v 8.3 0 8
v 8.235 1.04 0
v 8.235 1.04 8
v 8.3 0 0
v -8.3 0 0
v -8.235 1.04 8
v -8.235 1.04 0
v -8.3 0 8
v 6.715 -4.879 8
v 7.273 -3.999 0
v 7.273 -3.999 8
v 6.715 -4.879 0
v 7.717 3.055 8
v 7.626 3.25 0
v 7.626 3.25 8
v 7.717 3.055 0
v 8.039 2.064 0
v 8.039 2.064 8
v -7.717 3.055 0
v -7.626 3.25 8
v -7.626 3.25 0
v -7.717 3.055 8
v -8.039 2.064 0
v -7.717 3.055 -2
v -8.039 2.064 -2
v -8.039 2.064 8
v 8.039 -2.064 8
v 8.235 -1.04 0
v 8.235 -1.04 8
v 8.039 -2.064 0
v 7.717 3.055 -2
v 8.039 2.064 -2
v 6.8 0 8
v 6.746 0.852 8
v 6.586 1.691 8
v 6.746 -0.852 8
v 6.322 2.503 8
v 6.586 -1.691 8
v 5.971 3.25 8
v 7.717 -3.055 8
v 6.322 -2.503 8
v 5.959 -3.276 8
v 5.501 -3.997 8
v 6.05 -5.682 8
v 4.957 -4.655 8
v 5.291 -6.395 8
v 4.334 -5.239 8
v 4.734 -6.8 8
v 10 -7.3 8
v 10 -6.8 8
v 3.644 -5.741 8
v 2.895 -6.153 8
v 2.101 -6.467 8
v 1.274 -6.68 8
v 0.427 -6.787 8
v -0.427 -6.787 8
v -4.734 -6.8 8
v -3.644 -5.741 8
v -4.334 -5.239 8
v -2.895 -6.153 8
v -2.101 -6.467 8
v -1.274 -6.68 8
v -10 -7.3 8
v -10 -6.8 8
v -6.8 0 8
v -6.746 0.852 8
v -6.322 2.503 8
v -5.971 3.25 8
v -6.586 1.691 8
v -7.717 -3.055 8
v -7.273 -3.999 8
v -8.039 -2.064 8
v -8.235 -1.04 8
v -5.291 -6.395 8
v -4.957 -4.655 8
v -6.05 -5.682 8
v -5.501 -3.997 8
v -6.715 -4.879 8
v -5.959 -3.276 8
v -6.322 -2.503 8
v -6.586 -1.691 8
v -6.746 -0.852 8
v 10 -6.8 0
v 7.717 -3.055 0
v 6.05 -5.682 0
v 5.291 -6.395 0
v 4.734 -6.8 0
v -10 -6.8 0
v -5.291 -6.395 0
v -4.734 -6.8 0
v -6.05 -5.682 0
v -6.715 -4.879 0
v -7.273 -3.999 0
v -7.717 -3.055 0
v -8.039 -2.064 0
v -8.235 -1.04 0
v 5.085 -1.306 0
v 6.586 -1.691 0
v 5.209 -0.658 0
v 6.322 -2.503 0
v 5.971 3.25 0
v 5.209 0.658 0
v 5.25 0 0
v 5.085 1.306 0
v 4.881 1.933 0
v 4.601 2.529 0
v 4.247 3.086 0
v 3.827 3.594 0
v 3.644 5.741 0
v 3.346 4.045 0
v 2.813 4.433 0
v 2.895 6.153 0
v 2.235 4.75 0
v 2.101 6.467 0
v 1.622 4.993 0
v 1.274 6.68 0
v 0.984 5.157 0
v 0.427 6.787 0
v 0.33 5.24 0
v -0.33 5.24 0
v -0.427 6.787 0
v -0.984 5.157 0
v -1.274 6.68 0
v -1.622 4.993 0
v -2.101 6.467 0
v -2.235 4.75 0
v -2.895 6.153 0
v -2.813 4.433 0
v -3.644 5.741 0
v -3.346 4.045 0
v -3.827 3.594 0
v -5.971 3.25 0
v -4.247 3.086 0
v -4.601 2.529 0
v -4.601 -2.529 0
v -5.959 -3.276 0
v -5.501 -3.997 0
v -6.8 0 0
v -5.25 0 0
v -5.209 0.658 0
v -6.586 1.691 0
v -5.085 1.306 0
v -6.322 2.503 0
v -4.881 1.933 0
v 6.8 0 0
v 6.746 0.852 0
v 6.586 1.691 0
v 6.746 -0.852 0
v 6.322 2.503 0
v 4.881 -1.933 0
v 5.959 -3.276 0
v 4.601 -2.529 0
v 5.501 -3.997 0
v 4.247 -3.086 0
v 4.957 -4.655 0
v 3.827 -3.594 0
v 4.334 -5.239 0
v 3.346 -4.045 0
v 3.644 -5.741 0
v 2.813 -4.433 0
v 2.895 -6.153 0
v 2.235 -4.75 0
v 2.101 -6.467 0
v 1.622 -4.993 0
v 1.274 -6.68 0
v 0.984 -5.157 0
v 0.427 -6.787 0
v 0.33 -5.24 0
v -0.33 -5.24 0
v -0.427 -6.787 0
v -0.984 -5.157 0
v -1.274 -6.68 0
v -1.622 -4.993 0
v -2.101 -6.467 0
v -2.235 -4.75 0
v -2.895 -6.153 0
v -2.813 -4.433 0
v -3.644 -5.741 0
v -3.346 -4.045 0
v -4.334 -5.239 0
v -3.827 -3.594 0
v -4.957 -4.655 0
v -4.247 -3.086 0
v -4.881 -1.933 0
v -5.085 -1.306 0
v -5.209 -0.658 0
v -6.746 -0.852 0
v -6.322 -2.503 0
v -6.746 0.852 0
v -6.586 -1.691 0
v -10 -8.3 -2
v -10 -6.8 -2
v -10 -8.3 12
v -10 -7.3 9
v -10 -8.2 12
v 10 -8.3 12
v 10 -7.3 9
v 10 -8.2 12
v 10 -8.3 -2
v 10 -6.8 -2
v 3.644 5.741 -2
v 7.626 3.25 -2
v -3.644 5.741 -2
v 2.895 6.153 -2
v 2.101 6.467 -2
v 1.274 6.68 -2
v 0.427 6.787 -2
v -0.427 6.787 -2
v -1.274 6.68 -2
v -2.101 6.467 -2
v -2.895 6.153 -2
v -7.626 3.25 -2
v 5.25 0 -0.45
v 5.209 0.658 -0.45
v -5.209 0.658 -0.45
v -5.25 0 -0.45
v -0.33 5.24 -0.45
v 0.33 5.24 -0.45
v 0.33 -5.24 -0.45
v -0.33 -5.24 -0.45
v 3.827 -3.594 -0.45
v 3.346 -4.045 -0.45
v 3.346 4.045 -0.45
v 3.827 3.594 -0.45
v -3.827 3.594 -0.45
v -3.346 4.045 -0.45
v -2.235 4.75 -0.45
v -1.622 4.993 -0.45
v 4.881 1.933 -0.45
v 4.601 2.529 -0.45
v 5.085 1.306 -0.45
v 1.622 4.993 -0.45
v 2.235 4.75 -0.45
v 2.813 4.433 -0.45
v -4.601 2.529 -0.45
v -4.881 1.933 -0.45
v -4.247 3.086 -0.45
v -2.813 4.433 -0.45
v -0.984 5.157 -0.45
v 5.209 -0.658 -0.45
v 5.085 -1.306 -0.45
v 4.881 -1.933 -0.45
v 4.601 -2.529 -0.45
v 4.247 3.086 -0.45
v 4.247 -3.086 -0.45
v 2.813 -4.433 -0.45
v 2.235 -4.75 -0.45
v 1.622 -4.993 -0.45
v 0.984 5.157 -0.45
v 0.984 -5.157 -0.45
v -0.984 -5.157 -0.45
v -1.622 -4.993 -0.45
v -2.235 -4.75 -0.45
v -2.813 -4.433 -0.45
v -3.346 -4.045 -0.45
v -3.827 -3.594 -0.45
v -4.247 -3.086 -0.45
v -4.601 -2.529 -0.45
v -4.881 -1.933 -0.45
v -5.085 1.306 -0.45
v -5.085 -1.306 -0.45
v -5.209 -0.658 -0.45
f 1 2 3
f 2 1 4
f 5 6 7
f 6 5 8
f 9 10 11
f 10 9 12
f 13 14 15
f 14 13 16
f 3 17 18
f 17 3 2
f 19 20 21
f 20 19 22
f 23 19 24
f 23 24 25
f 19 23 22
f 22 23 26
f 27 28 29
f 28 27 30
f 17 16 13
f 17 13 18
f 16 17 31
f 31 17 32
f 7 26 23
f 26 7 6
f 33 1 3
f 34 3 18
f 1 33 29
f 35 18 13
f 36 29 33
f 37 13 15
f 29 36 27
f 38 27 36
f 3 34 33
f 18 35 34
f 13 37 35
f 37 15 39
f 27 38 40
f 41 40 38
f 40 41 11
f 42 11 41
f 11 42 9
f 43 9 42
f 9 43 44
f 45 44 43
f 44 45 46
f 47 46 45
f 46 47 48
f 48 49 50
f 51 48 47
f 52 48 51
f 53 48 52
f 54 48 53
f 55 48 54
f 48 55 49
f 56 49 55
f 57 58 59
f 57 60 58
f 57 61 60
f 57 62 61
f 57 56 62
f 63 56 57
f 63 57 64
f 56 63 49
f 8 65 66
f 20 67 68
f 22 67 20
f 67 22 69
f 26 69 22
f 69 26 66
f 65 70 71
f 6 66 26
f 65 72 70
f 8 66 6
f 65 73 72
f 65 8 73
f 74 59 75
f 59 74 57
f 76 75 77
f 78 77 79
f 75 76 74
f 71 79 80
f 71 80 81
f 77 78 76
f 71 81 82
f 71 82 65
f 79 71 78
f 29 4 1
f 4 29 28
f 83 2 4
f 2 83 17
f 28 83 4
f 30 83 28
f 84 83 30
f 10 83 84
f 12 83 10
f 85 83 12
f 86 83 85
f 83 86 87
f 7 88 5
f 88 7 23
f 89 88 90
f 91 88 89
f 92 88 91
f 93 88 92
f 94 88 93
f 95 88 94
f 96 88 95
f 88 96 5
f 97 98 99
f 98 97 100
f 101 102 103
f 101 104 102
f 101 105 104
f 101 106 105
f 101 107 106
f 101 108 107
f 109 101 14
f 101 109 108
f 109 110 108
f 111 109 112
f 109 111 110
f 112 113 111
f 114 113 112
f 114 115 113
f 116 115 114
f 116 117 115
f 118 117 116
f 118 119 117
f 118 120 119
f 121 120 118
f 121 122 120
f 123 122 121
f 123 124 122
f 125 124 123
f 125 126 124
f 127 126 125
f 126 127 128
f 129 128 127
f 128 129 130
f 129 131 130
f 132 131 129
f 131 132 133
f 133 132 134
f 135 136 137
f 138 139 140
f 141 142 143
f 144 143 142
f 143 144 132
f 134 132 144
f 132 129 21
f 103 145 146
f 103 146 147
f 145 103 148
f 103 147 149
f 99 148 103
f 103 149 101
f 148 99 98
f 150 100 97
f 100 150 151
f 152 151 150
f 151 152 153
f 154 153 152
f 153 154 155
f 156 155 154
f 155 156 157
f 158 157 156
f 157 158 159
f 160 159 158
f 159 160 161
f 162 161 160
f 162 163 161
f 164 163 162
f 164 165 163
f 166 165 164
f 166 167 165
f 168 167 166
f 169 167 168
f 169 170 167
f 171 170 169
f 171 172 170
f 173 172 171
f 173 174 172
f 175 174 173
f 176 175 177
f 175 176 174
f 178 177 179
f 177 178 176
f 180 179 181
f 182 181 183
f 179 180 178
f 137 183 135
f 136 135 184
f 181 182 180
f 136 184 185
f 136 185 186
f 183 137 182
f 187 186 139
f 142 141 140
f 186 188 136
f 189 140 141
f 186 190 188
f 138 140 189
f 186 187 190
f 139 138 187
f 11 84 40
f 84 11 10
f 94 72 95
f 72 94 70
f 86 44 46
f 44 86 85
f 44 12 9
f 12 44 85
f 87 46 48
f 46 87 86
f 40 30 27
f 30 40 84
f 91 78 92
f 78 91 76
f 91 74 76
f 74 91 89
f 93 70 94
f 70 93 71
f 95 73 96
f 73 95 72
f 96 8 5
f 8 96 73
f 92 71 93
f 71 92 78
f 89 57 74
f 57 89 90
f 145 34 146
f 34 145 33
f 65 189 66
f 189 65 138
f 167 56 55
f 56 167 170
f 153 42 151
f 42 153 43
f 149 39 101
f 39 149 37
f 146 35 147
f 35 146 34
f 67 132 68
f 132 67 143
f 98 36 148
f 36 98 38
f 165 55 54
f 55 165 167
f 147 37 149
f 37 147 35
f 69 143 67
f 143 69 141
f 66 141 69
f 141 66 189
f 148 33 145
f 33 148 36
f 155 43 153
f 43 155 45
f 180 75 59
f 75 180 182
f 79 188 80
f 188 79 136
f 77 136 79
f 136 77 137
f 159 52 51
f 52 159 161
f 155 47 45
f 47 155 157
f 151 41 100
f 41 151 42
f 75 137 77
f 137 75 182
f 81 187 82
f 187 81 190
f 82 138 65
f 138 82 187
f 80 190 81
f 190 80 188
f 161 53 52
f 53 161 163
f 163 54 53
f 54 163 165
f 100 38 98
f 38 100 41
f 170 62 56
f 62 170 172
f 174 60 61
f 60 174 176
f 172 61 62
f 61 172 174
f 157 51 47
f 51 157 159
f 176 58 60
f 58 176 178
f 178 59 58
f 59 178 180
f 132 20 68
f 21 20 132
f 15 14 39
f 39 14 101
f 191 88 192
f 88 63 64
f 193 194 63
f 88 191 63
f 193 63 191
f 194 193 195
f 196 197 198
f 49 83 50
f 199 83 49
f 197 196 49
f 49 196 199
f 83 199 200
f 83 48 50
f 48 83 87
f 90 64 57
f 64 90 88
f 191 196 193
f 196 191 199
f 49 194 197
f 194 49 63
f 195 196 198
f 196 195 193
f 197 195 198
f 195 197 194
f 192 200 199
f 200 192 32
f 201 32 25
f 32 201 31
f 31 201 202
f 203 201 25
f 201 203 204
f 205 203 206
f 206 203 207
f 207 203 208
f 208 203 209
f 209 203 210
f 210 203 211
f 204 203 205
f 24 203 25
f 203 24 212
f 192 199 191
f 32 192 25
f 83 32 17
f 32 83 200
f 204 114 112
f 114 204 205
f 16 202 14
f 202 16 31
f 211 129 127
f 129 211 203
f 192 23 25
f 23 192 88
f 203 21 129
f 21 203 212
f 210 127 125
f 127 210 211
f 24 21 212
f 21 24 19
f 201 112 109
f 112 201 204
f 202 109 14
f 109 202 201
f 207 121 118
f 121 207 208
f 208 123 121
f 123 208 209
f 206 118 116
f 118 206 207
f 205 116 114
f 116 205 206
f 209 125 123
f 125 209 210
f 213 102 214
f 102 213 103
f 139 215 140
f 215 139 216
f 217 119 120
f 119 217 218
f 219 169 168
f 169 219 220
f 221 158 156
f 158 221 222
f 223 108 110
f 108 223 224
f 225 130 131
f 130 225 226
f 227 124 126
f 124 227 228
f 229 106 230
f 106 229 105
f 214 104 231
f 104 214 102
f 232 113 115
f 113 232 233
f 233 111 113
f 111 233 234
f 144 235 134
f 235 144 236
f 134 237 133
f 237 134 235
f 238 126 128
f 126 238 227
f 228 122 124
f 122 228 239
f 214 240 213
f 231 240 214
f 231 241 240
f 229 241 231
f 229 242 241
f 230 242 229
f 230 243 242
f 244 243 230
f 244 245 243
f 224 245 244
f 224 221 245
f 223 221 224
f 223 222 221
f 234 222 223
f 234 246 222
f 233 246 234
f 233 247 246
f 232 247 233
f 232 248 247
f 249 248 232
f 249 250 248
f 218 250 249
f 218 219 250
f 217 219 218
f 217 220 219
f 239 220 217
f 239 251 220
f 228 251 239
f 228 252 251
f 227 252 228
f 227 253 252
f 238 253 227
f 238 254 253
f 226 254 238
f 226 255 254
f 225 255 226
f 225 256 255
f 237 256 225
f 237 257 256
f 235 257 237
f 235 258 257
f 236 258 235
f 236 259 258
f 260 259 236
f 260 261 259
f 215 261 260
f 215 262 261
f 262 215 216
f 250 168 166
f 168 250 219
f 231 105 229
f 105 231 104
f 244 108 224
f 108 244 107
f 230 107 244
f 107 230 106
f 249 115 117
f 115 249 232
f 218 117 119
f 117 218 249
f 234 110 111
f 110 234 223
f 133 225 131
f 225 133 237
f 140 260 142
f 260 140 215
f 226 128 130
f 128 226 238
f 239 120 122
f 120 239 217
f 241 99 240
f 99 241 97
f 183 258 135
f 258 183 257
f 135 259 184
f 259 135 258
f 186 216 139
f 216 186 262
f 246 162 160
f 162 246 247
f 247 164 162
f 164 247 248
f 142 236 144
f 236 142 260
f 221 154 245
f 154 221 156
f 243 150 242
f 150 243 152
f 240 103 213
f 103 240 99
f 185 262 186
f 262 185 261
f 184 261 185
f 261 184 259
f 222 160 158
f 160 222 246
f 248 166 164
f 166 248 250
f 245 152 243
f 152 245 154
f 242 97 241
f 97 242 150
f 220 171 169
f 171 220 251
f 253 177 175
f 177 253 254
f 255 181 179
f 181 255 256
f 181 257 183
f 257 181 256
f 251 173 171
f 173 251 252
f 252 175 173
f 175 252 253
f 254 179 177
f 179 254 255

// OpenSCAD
// Copyright 2020 Martin Scheidt (Attribution 4.0 International, CC-BY 4.0)
//
// You are free to copy and redistribute the material in any medium or format.
// You are free to remix, transform, and build upon the material for any purpose, even commercially.
// You must give appropriate credit, provide a link to the license, and indicate if changes were made.
// You may not apply legal terms or technological measures that legally restrict others from doing anything the license permits.
// No warranties are given.
    
$fn = 50;// number of fragments

//material
thinnest_layer     = 0.1;
sqeeze_tolerance   = 0.6;

//dimensions
coupling_radius    = 13/2;
coupling_depth     = 8;
coupling_curvature = 2;
coupling_cut_pos   = coupling_radius*1/2;
boogie_width       = 20;
thickness          = 1.5;
lipp_height        = 4;
lipp_width         = thickness - sqeeze_tolerance;
shield_thickness   = 2;
inlay_thickness    = 0.45;
inlay_radius       = 10.5/2;

union(){
    difference(){ // coupling
        // outer ring
        cylinder(h = coupling_depth, r = coupling_radius + sqeeze_tolerance/2 + thickness);
        // inner ring
        translate([0,0,-thickness/2]) cylinder(h = coupling_depth + thickness, r = coupling_radius + sqeeze_tolerance/2);
        // cutting the lower edge
        translate([-coupling_radius*1.3,coupling_cut_pos,-thickness/2]) cube([coupling_radius*2.6,coupling_radius*1.2,coupling_depth + thickness]);
    }

    union(){// upper board
        // beam
        translate([-boogie_width/2,-(coupling_radius + thickness + sqeeze_tolerance/2),0]) cube([boogie_width,thickness,coupling_depth]);
        // lipp
        hull(){
            translate([-boogie_width/2,-(coupling_radius + sqeeze_tolerance/2 + thickness - lipp_width),coupling_depth]) cube([boogie_width,thinnest_layer,lipp_height/4]);
            translate([-boogie_width/2,-(coupling_radius + sqeeze_tolerance/2 + thickness),coupling_depth]) cube([boogie_width,thinnest_layer,lipp_height]);
        }
    }

    difference(){// front shield
        union(){
            hull(){
                // plate - upper part
                translate([-boogie_width/2,-(coupling_radius + thickness + sqeeze_tolerance/2),-shield_thickness]) cube([boogie_width,thickness,shield_thickness]);
                // plate - lower part
                difference(){
                    translate([0,0,-shield_thickness]) cylinder(h = shield_thickness, r = coupling_radius + sqeeze_tolerance/2 + thickness);
                    translate([-coupling_radius*1.3,coupling_cut_pos,-shield_thickness]) cube([coupling_radius*2.6,coupling_radius*1.2,shield_thickness]);
                }
                translate([0,0,-shield_thickness]) cylinder(h = shield_thickness, r = coupling_radius + sqeeze_tolerance/2);
            }
        }
        // inlay
        translate([0,0,-inlay_thickness]) cylinder(h = inlay_thickness*1.1, r = inlay_radius);
    }
}
